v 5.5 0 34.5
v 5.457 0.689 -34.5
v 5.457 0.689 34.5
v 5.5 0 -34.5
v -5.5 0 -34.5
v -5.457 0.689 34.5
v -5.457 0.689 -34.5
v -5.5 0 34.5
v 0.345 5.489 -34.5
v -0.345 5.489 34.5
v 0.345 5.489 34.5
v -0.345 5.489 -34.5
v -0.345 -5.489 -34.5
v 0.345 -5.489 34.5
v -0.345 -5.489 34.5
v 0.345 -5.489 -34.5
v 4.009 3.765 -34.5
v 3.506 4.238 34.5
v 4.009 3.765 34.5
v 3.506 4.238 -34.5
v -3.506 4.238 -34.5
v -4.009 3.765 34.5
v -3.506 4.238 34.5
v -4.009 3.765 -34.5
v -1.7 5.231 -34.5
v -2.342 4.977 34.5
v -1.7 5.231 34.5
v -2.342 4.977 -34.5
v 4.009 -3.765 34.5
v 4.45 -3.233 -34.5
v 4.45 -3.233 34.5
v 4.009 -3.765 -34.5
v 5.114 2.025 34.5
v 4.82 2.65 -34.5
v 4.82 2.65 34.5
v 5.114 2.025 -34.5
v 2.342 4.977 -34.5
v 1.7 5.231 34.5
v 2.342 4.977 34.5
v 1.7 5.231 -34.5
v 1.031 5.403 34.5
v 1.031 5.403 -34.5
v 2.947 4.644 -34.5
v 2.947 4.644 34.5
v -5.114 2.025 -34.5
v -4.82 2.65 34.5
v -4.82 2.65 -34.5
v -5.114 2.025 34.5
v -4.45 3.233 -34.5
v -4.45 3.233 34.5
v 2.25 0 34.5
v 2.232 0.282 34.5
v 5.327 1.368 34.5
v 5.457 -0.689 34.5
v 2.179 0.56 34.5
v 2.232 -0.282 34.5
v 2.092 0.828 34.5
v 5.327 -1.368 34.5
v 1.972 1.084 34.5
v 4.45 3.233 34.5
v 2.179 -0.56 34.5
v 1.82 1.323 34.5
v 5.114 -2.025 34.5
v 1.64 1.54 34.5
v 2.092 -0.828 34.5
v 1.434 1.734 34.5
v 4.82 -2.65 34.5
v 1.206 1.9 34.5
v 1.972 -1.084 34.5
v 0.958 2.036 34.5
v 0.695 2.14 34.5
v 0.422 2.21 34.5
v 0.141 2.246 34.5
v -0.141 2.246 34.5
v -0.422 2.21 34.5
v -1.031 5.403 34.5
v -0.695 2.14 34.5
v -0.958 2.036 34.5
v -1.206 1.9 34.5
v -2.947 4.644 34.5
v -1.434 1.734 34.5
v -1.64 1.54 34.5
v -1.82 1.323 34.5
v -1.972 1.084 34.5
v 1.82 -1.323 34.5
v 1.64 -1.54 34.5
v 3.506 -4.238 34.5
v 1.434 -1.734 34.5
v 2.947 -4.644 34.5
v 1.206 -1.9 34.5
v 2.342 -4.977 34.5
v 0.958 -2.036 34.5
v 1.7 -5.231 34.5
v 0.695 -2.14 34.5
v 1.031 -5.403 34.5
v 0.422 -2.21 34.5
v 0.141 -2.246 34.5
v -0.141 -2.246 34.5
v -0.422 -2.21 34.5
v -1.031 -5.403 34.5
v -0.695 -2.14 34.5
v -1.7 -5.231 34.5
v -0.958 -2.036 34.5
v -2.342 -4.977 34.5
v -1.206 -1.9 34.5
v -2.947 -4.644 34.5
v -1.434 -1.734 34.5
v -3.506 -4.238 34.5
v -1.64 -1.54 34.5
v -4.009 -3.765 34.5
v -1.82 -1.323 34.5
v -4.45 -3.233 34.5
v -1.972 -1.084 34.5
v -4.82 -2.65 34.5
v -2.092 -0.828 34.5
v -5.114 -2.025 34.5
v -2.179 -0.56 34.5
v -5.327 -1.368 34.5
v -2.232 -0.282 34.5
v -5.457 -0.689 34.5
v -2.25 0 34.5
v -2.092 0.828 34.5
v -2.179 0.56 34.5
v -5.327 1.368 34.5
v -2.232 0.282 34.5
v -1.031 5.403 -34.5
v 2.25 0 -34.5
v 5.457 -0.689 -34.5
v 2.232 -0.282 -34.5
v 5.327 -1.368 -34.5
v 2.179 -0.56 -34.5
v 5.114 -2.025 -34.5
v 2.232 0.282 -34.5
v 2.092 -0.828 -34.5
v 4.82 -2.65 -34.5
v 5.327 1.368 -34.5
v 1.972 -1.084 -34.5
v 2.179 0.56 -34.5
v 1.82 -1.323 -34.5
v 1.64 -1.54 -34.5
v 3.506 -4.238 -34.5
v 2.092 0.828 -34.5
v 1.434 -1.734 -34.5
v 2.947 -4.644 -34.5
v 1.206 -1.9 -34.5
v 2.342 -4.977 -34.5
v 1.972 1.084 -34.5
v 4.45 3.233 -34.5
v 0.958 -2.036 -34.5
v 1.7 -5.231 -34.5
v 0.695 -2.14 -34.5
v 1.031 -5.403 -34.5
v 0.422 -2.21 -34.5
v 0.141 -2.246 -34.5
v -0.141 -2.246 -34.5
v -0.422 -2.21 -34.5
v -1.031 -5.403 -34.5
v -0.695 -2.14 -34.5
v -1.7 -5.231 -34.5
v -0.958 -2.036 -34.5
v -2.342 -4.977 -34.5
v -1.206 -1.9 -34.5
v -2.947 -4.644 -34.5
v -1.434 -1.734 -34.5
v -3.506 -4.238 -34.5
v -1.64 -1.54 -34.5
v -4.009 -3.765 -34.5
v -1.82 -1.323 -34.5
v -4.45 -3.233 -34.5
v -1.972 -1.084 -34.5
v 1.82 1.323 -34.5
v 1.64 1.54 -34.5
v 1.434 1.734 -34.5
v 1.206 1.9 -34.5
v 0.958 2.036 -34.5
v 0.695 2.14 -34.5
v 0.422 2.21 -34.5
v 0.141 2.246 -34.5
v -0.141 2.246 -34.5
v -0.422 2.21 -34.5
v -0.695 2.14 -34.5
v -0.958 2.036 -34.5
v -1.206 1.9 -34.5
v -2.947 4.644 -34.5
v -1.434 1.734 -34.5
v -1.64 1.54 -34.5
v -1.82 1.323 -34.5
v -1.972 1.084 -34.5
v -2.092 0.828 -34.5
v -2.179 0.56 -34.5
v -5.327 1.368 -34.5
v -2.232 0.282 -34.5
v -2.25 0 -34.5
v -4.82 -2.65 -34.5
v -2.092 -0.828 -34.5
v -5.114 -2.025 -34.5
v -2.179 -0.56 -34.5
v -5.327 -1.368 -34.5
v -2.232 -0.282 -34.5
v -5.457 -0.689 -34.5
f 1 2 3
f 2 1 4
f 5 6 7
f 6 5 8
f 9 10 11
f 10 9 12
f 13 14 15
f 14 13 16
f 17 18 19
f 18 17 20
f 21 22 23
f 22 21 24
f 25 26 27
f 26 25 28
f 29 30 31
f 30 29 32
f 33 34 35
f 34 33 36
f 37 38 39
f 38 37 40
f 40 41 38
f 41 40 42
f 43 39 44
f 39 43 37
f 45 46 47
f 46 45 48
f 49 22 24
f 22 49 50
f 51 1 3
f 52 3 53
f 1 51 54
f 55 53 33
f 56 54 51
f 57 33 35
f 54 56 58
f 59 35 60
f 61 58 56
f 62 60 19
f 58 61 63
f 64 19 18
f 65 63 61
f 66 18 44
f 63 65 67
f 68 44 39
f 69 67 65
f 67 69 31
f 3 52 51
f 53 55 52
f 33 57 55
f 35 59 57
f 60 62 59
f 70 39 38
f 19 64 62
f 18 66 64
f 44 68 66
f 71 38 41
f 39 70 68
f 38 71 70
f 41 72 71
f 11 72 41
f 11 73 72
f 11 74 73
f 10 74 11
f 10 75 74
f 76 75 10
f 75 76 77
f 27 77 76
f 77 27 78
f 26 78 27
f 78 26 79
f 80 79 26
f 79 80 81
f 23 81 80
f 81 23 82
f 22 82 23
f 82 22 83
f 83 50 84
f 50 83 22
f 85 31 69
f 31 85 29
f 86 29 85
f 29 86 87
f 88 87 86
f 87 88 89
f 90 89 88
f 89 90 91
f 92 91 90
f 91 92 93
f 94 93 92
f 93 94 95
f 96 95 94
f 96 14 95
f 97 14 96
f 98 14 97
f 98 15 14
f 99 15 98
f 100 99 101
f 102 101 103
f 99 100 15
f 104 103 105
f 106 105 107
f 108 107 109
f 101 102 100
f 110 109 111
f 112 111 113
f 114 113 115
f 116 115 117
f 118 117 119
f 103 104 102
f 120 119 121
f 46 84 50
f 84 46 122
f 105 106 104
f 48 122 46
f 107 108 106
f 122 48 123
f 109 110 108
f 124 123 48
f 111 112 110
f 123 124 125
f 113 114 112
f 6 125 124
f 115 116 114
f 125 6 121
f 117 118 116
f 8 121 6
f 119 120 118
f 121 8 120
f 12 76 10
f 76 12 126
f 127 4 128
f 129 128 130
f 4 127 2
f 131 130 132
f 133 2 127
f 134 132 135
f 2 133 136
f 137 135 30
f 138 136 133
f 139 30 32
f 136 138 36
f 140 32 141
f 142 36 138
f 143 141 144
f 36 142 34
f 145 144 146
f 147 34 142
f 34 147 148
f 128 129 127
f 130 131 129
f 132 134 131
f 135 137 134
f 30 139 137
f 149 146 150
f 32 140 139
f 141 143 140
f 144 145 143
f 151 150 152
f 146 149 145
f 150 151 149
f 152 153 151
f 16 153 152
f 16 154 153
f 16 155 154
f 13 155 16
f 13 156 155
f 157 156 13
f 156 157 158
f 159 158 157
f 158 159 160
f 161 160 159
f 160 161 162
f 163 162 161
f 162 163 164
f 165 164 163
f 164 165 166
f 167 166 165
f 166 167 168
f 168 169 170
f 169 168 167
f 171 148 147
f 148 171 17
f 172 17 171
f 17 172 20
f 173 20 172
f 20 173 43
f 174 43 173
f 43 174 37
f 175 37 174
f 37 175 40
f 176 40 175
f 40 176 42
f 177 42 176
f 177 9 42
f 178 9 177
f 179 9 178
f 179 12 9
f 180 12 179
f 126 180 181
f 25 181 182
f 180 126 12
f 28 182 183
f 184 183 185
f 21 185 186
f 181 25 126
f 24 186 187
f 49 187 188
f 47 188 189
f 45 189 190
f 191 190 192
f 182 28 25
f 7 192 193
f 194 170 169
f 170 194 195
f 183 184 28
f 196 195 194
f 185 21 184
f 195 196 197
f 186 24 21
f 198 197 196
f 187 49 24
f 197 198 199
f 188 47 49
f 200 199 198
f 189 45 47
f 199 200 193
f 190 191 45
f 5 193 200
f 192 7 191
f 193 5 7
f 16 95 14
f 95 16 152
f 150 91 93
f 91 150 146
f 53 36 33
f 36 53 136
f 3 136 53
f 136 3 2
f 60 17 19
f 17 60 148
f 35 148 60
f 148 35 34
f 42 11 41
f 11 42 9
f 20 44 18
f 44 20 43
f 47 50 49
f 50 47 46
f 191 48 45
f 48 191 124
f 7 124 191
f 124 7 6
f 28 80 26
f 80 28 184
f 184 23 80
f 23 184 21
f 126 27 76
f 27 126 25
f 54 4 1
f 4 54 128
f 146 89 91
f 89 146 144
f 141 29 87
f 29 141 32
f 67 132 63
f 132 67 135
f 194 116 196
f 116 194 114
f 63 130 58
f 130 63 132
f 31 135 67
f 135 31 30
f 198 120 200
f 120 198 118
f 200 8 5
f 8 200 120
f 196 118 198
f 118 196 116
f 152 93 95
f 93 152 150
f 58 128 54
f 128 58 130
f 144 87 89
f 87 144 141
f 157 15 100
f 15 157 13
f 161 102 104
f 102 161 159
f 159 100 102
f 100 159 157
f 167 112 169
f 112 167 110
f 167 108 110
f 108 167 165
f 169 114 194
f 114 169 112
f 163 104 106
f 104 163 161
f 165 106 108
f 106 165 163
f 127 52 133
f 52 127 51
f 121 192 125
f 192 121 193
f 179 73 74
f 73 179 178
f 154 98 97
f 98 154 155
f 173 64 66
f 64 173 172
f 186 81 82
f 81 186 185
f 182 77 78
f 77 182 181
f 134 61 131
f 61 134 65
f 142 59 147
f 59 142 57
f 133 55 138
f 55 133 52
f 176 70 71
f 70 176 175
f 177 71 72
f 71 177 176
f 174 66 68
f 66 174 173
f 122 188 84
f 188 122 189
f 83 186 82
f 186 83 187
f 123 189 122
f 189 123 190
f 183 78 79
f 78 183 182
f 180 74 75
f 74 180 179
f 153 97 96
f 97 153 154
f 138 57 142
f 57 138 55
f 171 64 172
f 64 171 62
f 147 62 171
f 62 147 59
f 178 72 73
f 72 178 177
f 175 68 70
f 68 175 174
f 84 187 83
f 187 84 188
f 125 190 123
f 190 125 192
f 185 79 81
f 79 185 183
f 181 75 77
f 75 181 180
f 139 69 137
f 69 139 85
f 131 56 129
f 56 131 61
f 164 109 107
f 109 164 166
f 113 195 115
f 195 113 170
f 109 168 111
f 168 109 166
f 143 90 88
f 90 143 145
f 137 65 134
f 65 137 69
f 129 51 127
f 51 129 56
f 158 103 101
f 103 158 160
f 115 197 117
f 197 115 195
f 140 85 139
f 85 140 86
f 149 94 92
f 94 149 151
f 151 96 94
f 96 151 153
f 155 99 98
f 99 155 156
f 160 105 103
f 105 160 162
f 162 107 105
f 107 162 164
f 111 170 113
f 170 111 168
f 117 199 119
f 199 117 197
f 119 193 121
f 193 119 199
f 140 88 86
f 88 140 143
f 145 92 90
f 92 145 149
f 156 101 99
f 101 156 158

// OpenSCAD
$fn = 50;


difference() {
	union() {
		translate(v = [0, 0, -34.5000000000]) {
			cylinder(h = 69, r = 5.5000000000);
		}
	}
	union() {
		translate(v = [0, 0, -100.0000000000]) {
			cylinder(h = 200, r = 2.2500000000);
		}
	}
}
